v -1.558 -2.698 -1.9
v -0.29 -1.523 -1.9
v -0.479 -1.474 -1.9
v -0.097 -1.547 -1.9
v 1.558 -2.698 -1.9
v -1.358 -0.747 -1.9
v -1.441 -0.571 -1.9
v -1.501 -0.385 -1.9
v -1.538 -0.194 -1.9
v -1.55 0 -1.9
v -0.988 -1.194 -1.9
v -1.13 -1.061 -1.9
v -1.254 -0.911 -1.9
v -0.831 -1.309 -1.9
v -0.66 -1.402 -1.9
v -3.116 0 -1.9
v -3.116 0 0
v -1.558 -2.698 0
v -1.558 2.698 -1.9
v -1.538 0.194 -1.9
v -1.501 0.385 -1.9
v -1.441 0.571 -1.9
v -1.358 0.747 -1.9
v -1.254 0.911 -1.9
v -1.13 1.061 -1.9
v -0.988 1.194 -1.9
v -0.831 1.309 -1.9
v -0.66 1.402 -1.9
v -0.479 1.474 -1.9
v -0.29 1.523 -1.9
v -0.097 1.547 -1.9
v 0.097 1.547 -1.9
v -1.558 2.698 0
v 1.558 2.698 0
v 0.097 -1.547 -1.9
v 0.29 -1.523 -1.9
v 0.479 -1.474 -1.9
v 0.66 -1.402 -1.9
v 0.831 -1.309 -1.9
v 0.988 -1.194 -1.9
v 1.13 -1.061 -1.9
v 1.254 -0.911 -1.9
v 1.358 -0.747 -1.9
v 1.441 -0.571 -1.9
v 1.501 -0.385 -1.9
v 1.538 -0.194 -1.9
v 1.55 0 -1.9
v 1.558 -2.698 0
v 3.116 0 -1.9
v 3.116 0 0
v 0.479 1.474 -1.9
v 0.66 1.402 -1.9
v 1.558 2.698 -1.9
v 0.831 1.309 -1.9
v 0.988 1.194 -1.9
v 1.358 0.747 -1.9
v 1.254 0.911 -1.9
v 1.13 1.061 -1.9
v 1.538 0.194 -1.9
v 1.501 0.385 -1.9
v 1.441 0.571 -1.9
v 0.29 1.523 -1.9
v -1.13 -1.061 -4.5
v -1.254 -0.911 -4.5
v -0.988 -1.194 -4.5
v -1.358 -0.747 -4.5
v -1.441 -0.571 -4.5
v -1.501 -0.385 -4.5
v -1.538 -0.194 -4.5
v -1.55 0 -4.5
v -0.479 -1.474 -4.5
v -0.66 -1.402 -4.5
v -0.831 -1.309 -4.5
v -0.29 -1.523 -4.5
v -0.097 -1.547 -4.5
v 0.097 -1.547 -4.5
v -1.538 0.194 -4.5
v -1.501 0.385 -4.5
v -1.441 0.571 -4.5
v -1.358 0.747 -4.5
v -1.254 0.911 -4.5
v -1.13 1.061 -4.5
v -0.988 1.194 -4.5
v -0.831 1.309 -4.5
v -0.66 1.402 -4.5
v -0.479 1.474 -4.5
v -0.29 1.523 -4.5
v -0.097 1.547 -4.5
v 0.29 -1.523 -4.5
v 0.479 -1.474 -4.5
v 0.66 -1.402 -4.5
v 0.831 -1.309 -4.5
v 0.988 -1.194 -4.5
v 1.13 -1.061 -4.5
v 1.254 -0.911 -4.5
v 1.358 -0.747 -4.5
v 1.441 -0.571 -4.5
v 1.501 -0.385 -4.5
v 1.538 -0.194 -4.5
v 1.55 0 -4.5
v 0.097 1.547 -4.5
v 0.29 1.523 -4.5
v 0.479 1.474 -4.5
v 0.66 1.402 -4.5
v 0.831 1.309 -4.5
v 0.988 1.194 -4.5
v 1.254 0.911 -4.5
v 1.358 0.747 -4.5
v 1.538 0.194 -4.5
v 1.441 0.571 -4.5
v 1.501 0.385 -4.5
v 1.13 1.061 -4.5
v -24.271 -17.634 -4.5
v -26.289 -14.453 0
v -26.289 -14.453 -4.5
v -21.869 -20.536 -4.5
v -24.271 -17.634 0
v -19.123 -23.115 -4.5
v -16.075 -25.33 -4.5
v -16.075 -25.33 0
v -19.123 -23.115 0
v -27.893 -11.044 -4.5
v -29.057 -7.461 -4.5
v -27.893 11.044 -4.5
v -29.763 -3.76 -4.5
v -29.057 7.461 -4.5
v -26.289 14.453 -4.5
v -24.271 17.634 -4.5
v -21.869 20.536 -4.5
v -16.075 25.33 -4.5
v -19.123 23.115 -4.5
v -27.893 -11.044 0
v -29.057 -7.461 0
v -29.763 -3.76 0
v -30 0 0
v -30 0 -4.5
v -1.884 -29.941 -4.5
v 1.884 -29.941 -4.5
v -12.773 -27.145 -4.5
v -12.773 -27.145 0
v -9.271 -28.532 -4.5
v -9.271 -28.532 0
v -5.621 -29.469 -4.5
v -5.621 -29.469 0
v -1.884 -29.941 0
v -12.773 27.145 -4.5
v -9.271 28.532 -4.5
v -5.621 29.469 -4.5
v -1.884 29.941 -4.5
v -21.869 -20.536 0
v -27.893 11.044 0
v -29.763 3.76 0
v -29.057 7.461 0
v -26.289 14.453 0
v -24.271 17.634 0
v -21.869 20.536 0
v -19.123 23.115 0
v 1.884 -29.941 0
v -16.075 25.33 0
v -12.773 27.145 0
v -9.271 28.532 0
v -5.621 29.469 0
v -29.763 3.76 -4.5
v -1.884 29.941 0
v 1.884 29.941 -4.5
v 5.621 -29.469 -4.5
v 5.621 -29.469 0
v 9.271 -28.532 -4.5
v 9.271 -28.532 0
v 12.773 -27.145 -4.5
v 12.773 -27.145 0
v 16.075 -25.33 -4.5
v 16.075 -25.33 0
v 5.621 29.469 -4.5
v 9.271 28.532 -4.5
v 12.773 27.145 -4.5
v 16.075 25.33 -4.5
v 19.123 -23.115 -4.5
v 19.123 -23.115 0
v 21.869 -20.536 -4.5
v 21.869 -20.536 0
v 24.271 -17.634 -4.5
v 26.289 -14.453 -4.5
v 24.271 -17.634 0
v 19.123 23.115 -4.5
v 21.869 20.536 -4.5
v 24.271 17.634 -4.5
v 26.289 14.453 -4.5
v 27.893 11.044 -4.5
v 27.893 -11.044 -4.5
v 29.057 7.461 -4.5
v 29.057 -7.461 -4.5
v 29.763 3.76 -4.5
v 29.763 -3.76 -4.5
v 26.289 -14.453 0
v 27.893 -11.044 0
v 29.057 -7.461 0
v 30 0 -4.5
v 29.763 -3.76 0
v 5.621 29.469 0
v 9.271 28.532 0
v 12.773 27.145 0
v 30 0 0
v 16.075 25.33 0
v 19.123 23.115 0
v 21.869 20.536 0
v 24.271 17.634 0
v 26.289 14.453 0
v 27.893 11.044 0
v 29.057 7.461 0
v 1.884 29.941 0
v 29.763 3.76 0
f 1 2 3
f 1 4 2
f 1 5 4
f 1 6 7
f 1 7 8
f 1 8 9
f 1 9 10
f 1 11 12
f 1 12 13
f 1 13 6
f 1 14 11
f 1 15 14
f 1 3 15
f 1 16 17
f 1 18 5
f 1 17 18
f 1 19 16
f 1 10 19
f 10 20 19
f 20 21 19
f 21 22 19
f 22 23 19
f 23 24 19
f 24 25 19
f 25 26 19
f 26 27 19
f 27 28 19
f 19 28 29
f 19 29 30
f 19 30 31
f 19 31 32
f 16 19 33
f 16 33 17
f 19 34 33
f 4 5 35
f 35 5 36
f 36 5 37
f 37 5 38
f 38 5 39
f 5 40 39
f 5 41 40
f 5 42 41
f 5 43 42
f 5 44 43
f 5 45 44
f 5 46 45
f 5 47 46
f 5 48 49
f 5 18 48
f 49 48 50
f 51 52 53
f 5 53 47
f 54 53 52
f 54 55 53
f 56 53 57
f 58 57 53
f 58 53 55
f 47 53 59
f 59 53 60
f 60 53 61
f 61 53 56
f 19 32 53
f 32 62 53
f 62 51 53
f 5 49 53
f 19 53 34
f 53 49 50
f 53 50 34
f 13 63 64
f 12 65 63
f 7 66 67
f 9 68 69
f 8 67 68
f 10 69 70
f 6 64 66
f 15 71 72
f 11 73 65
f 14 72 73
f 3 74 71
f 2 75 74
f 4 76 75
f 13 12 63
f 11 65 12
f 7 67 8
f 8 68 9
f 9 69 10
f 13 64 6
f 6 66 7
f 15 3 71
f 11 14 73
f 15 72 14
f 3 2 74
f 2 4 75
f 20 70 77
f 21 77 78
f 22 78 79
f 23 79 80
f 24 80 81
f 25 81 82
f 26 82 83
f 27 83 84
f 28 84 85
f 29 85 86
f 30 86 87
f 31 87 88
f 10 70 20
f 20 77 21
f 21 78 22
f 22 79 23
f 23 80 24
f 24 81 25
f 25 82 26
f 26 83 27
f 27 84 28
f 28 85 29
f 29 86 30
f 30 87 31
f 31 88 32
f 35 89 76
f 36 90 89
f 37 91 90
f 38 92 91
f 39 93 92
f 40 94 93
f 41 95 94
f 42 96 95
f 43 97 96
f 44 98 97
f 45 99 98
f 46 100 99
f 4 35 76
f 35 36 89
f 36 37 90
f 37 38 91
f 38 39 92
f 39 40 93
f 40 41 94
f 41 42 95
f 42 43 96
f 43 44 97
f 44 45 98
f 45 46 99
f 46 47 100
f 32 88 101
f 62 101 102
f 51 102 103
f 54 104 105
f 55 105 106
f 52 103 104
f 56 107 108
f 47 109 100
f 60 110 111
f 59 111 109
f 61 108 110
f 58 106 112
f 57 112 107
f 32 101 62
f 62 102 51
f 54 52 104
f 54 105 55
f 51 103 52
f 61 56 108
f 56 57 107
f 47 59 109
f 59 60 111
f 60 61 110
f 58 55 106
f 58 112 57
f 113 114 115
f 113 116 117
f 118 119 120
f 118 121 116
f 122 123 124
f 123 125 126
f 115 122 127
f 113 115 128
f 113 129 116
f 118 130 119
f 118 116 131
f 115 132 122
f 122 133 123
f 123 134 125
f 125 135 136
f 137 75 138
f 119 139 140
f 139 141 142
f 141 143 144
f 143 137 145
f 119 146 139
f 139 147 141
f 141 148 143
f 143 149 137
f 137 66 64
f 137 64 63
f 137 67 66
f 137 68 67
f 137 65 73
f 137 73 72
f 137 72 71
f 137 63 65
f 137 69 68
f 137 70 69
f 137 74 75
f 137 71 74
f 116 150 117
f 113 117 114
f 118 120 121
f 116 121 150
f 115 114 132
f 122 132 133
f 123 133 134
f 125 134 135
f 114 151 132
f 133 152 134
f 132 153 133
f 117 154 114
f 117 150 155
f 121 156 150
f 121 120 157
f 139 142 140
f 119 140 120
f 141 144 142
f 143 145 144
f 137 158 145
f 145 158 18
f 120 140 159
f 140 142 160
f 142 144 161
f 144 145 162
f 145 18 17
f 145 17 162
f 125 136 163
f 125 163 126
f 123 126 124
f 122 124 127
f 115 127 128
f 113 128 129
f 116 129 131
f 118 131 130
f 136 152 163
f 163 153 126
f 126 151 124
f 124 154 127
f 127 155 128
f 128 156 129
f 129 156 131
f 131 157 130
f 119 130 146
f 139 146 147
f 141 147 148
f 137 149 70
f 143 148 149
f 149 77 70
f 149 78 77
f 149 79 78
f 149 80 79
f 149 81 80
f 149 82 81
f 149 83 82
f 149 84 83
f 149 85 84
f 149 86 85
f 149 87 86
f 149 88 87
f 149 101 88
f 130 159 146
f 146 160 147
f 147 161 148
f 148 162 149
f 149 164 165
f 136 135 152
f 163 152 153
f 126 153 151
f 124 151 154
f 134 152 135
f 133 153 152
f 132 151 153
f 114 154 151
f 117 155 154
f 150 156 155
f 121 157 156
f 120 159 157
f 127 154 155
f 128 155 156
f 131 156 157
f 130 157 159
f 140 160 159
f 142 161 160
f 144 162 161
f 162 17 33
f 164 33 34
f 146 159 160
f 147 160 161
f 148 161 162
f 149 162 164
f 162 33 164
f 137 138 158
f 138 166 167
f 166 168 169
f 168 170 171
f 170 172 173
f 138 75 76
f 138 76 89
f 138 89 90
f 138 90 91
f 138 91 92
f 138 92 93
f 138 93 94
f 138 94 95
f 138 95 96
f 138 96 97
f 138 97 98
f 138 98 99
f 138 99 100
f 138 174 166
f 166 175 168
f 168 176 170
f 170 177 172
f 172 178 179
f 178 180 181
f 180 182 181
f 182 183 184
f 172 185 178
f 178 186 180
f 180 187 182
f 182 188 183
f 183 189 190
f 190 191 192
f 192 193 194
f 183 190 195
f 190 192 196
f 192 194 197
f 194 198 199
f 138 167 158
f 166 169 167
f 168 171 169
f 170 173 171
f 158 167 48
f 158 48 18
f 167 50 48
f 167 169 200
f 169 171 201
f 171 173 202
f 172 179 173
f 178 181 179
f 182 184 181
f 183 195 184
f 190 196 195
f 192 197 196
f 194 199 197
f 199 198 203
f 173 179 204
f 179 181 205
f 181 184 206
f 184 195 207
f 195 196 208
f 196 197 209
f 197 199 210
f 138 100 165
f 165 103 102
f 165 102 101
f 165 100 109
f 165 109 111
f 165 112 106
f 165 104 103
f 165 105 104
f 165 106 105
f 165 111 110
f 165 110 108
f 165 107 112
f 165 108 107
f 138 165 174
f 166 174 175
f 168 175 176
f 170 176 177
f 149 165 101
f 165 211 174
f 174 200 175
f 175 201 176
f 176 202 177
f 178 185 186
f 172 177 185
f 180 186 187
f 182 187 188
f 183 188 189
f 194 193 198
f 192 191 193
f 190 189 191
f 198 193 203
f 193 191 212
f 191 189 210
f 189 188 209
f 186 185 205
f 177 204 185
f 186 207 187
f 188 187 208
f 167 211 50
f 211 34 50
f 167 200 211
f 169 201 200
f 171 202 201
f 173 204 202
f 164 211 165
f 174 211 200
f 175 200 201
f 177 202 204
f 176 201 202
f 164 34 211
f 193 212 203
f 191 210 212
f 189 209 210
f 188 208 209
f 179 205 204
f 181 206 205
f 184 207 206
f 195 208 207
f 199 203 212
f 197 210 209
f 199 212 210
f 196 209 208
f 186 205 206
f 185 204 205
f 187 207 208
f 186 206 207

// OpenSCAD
$fn = 50;

difference() {
	union() {
		translate(v = [0, 0, -4.5]) {
			cylinder(h = 4.5, r = 30.0);
		}
	}
	union() {
		translate(v = [0, 0, 0]) {
			rotate(a = [0, 0, 0]) {
				difference() {
					union() {
						translate(v = [0, 0, -1.9]) {
							linear_extrude(height = 1.9) {
								polygon(points = [[3.1158, 0.0], [1.5579000000000005, 2.698361953111554], [-1.5578999999999994, 2.6983619531115544], [-3.1158, 3.815754496783323e-16], [-1.5579000000000014, -2.6983619531115535], [1.557899999999998, -2.6983619531115552]]);
							}
						}
					}
					union();
				}
			}
		}
		#translate(v = [0, 0, -100.0]) {
			cylinder(h = 200, r = 1.55);
		}
	}
}
